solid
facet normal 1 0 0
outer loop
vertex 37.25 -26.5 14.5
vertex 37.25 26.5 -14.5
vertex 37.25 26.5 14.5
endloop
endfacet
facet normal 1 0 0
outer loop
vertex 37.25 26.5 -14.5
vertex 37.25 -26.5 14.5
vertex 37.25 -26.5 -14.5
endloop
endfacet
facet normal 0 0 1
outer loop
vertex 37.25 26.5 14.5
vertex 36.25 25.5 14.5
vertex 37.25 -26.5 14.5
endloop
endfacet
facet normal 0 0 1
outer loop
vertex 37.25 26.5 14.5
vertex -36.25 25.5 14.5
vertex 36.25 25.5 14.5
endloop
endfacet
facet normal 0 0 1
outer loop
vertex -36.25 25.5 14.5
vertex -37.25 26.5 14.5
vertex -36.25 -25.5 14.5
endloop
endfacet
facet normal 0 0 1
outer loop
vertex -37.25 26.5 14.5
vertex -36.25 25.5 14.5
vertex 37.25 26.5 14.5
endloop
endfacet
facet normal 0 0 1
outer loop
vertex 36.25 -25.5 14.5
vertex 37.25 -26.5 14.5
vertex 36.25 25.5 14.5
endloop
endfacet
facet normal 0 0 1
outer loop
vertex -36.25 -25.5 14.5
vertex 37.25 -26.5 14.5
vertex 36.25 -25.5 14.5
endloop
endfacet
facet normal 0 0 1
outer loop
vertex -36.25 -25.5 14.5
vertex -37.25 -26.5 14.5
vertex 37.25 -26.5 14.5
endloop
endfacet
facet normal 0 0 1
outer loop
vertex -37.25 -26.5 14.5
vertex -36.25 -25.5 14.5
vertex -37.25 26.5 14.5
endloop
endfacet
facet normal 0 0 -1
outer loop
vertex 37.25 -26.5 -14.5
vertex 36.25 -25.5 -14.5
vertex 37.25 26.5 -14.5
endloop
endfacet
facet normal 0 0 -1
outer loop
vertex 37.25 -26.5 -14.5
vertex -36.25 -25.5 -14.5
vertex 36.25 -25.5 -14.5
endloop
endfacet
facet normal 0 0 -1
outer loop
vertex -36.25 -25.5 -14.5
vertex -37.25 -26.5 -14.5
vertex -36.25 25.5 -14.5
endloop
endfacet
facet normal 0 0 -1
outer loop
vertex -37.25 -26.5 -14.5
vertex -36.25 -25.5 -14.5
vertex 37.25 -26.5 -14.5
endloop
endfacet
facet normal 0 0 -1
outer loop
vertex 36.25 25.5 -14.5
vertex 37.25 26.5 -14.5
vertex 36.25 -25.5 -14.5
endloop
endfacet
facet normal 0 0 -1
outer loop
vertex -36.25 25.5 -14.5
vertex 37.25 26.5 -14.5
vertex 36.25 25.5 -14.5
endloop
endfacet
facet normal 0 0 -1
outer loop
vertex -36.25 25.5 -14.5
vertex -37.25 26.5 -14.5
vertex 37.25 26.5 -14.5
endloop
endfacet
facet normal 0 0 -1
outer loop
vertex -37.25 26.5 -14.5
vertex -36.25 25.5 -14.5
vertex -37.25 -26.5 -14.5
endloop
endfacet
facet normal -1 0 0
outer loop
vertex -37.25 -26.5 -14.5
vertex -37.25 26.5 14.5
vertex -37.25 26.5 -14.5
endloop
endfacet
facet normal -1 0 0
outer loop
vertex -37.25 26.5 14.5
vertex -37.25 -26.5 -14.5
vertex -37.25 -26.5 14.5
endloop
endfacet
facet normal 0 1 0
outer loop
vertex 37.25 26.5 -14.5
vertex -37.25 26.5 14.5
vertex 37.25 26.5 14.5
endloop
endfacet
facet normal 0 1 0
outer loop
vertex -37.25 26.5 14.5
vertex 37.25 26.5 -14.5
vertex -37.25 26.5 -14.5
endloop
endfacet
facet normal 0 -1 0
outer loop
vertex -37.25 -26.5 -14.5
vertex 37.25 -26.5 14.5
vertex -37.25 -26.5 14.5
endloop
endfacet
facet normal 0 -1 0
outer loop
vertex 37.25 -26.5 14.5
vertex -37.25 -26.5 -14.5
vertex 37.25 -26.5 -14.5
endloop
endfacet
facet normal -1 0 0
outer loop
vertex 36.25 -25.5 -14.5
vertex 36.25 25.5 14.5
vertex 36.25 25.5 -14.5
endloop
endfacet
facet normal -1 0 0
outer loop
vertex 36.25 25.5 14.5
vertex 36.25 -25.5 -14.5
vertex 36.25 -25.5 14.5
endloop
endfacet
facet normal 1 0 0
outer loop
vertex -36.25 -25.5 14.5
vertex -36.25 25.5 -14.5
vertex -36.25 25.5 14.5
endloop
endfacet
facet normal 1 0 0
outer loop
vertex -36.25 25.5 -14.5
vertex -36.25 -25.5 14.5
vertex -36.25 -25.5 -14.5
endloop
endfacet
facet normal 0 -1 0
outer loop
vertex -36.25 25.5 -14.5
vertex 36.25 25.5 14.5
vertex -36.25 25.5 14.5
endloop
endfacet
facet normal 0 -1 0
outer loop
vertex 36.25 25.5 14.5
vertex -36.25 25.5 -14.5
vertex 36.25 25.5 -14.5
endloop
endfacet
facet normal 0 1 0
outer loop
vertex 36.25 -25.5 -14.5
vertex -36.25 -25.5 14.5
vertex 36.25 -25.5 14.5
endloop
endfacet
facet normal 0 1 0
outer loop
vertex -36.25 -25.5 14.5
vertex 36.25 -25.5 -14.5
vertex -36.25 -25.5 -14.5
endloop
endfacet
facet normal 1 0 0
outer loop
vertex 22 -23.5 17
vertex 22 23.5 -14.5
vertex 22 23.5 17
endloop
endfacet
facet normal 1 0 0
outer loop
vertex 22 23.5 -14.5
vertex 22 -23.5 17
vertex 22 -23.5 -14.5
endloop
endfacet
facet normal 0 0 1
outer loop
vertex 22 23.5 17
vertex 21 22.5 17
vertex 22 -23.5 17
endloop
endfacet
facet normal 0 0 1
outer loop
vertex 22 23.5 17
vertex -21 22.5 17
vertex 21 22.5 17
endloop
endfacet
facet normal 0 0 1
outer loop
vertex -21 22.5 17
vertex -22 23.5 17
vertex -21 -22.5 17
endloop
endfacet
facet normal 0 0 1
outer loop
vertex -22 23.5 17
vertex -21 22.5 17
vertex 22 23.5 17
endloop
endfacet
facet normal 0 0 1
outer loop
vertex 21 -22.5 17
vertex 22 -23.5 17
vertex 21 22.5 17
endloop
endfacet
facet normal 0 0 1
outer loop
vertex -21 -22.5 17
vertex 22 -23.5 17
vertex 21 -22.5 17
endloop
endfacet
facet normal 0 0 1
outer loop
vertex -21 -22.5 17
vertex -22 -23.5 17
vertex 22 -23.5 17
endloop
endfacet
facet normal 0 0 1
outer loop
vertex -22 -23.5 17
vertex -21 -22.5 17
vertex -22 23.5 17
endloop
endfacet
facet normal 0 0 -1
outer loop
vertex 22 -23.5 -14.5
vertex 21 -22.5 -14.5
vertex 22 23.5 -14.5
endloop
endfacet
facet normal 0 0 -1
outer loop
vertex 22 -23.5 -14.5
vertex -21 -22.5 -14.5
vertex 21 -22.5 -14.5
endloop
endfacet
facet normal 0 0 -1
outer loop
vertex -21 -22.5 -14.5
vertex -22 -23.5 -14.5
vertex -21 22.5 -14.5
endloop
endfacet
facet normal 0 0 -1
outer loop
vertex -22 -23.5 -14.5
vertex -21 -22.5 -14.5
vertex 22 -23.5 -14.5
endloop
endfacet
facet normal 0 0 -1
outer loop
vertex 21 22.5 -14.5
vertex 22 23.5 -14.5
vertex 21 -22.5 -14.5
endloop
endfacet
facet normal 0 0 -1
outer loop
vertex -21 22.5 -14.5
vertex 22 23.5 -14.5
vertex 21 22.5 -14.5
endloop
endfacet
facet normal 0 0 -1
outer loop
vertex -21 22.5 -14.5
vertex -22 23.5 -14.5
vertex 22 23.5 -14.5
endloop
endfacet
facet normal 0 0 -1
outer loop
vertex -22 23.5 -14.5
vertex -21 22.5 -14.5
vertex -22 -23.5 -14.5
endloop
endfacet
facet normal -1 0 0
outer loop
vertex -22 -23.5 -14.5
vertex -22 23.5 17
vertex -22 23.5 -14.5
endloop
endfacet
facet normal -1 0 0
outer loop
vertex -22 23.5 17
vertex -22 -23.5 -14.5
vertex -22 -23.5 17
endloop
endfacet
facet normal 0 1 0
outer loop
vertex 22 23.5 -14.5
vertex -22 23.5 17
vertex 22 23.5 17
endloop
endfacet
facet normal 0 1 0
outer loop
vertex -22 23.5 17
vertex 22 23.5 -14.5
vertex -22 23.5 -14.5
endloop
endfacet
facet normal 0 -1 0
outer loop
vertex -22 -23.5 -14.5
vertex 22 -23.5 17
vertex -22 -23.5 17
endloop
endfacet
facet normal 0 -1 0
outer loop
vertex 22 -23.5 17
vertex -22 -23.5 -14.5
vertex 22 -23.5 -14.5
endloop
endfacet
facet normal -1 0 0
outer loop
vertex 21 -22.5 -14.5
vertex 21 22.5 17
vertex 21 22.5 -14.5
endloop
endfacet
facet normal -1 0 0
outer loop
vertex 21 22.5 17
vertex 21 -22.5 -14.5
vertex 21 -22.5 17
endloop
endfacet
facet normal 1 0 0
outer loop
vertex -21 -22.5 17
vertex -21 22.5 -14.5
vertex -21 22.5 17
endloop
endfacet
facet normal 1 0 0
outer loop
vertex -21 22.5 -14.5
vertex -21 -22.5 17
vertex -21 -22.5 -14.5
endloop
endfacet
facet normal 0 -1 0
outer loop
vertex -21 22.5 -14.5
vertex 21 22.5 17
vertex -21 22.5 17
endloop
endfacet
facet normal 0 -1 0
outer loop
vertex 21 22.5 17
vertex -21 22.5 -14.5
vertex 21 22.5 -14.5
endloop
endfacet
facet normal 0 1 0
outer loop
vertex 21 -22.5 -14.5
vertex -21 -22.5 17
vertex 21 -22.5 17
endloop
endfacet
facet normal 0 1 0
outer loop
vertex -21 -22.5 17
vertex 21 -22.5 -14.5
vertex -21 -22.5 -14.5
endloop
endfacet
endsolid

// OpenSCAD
aa_diameter = 14.5;
aa_length = 51;
aaa_diameter = 10.5;
aaa_length = 45;
wall_thickness = 1;

module battery_holder(diameter, length, cells_per_row, rows) {
    difference() {
        cube([diameter * cells_per_row+2*wall_thickness, length+2*wall_thickness, diameter * rows], center = true);
        cube([diameter * cells_per_row, length, diameter * rows], center = true);
    }
}

battery_holder(aa_diameter, aa_length, 5, 2);
translate([0,0, (3*aaa_diameter - 2*aa_diameter)/2])
    battery_holder(aaa_diameter, aaa_length, 4, 3);
